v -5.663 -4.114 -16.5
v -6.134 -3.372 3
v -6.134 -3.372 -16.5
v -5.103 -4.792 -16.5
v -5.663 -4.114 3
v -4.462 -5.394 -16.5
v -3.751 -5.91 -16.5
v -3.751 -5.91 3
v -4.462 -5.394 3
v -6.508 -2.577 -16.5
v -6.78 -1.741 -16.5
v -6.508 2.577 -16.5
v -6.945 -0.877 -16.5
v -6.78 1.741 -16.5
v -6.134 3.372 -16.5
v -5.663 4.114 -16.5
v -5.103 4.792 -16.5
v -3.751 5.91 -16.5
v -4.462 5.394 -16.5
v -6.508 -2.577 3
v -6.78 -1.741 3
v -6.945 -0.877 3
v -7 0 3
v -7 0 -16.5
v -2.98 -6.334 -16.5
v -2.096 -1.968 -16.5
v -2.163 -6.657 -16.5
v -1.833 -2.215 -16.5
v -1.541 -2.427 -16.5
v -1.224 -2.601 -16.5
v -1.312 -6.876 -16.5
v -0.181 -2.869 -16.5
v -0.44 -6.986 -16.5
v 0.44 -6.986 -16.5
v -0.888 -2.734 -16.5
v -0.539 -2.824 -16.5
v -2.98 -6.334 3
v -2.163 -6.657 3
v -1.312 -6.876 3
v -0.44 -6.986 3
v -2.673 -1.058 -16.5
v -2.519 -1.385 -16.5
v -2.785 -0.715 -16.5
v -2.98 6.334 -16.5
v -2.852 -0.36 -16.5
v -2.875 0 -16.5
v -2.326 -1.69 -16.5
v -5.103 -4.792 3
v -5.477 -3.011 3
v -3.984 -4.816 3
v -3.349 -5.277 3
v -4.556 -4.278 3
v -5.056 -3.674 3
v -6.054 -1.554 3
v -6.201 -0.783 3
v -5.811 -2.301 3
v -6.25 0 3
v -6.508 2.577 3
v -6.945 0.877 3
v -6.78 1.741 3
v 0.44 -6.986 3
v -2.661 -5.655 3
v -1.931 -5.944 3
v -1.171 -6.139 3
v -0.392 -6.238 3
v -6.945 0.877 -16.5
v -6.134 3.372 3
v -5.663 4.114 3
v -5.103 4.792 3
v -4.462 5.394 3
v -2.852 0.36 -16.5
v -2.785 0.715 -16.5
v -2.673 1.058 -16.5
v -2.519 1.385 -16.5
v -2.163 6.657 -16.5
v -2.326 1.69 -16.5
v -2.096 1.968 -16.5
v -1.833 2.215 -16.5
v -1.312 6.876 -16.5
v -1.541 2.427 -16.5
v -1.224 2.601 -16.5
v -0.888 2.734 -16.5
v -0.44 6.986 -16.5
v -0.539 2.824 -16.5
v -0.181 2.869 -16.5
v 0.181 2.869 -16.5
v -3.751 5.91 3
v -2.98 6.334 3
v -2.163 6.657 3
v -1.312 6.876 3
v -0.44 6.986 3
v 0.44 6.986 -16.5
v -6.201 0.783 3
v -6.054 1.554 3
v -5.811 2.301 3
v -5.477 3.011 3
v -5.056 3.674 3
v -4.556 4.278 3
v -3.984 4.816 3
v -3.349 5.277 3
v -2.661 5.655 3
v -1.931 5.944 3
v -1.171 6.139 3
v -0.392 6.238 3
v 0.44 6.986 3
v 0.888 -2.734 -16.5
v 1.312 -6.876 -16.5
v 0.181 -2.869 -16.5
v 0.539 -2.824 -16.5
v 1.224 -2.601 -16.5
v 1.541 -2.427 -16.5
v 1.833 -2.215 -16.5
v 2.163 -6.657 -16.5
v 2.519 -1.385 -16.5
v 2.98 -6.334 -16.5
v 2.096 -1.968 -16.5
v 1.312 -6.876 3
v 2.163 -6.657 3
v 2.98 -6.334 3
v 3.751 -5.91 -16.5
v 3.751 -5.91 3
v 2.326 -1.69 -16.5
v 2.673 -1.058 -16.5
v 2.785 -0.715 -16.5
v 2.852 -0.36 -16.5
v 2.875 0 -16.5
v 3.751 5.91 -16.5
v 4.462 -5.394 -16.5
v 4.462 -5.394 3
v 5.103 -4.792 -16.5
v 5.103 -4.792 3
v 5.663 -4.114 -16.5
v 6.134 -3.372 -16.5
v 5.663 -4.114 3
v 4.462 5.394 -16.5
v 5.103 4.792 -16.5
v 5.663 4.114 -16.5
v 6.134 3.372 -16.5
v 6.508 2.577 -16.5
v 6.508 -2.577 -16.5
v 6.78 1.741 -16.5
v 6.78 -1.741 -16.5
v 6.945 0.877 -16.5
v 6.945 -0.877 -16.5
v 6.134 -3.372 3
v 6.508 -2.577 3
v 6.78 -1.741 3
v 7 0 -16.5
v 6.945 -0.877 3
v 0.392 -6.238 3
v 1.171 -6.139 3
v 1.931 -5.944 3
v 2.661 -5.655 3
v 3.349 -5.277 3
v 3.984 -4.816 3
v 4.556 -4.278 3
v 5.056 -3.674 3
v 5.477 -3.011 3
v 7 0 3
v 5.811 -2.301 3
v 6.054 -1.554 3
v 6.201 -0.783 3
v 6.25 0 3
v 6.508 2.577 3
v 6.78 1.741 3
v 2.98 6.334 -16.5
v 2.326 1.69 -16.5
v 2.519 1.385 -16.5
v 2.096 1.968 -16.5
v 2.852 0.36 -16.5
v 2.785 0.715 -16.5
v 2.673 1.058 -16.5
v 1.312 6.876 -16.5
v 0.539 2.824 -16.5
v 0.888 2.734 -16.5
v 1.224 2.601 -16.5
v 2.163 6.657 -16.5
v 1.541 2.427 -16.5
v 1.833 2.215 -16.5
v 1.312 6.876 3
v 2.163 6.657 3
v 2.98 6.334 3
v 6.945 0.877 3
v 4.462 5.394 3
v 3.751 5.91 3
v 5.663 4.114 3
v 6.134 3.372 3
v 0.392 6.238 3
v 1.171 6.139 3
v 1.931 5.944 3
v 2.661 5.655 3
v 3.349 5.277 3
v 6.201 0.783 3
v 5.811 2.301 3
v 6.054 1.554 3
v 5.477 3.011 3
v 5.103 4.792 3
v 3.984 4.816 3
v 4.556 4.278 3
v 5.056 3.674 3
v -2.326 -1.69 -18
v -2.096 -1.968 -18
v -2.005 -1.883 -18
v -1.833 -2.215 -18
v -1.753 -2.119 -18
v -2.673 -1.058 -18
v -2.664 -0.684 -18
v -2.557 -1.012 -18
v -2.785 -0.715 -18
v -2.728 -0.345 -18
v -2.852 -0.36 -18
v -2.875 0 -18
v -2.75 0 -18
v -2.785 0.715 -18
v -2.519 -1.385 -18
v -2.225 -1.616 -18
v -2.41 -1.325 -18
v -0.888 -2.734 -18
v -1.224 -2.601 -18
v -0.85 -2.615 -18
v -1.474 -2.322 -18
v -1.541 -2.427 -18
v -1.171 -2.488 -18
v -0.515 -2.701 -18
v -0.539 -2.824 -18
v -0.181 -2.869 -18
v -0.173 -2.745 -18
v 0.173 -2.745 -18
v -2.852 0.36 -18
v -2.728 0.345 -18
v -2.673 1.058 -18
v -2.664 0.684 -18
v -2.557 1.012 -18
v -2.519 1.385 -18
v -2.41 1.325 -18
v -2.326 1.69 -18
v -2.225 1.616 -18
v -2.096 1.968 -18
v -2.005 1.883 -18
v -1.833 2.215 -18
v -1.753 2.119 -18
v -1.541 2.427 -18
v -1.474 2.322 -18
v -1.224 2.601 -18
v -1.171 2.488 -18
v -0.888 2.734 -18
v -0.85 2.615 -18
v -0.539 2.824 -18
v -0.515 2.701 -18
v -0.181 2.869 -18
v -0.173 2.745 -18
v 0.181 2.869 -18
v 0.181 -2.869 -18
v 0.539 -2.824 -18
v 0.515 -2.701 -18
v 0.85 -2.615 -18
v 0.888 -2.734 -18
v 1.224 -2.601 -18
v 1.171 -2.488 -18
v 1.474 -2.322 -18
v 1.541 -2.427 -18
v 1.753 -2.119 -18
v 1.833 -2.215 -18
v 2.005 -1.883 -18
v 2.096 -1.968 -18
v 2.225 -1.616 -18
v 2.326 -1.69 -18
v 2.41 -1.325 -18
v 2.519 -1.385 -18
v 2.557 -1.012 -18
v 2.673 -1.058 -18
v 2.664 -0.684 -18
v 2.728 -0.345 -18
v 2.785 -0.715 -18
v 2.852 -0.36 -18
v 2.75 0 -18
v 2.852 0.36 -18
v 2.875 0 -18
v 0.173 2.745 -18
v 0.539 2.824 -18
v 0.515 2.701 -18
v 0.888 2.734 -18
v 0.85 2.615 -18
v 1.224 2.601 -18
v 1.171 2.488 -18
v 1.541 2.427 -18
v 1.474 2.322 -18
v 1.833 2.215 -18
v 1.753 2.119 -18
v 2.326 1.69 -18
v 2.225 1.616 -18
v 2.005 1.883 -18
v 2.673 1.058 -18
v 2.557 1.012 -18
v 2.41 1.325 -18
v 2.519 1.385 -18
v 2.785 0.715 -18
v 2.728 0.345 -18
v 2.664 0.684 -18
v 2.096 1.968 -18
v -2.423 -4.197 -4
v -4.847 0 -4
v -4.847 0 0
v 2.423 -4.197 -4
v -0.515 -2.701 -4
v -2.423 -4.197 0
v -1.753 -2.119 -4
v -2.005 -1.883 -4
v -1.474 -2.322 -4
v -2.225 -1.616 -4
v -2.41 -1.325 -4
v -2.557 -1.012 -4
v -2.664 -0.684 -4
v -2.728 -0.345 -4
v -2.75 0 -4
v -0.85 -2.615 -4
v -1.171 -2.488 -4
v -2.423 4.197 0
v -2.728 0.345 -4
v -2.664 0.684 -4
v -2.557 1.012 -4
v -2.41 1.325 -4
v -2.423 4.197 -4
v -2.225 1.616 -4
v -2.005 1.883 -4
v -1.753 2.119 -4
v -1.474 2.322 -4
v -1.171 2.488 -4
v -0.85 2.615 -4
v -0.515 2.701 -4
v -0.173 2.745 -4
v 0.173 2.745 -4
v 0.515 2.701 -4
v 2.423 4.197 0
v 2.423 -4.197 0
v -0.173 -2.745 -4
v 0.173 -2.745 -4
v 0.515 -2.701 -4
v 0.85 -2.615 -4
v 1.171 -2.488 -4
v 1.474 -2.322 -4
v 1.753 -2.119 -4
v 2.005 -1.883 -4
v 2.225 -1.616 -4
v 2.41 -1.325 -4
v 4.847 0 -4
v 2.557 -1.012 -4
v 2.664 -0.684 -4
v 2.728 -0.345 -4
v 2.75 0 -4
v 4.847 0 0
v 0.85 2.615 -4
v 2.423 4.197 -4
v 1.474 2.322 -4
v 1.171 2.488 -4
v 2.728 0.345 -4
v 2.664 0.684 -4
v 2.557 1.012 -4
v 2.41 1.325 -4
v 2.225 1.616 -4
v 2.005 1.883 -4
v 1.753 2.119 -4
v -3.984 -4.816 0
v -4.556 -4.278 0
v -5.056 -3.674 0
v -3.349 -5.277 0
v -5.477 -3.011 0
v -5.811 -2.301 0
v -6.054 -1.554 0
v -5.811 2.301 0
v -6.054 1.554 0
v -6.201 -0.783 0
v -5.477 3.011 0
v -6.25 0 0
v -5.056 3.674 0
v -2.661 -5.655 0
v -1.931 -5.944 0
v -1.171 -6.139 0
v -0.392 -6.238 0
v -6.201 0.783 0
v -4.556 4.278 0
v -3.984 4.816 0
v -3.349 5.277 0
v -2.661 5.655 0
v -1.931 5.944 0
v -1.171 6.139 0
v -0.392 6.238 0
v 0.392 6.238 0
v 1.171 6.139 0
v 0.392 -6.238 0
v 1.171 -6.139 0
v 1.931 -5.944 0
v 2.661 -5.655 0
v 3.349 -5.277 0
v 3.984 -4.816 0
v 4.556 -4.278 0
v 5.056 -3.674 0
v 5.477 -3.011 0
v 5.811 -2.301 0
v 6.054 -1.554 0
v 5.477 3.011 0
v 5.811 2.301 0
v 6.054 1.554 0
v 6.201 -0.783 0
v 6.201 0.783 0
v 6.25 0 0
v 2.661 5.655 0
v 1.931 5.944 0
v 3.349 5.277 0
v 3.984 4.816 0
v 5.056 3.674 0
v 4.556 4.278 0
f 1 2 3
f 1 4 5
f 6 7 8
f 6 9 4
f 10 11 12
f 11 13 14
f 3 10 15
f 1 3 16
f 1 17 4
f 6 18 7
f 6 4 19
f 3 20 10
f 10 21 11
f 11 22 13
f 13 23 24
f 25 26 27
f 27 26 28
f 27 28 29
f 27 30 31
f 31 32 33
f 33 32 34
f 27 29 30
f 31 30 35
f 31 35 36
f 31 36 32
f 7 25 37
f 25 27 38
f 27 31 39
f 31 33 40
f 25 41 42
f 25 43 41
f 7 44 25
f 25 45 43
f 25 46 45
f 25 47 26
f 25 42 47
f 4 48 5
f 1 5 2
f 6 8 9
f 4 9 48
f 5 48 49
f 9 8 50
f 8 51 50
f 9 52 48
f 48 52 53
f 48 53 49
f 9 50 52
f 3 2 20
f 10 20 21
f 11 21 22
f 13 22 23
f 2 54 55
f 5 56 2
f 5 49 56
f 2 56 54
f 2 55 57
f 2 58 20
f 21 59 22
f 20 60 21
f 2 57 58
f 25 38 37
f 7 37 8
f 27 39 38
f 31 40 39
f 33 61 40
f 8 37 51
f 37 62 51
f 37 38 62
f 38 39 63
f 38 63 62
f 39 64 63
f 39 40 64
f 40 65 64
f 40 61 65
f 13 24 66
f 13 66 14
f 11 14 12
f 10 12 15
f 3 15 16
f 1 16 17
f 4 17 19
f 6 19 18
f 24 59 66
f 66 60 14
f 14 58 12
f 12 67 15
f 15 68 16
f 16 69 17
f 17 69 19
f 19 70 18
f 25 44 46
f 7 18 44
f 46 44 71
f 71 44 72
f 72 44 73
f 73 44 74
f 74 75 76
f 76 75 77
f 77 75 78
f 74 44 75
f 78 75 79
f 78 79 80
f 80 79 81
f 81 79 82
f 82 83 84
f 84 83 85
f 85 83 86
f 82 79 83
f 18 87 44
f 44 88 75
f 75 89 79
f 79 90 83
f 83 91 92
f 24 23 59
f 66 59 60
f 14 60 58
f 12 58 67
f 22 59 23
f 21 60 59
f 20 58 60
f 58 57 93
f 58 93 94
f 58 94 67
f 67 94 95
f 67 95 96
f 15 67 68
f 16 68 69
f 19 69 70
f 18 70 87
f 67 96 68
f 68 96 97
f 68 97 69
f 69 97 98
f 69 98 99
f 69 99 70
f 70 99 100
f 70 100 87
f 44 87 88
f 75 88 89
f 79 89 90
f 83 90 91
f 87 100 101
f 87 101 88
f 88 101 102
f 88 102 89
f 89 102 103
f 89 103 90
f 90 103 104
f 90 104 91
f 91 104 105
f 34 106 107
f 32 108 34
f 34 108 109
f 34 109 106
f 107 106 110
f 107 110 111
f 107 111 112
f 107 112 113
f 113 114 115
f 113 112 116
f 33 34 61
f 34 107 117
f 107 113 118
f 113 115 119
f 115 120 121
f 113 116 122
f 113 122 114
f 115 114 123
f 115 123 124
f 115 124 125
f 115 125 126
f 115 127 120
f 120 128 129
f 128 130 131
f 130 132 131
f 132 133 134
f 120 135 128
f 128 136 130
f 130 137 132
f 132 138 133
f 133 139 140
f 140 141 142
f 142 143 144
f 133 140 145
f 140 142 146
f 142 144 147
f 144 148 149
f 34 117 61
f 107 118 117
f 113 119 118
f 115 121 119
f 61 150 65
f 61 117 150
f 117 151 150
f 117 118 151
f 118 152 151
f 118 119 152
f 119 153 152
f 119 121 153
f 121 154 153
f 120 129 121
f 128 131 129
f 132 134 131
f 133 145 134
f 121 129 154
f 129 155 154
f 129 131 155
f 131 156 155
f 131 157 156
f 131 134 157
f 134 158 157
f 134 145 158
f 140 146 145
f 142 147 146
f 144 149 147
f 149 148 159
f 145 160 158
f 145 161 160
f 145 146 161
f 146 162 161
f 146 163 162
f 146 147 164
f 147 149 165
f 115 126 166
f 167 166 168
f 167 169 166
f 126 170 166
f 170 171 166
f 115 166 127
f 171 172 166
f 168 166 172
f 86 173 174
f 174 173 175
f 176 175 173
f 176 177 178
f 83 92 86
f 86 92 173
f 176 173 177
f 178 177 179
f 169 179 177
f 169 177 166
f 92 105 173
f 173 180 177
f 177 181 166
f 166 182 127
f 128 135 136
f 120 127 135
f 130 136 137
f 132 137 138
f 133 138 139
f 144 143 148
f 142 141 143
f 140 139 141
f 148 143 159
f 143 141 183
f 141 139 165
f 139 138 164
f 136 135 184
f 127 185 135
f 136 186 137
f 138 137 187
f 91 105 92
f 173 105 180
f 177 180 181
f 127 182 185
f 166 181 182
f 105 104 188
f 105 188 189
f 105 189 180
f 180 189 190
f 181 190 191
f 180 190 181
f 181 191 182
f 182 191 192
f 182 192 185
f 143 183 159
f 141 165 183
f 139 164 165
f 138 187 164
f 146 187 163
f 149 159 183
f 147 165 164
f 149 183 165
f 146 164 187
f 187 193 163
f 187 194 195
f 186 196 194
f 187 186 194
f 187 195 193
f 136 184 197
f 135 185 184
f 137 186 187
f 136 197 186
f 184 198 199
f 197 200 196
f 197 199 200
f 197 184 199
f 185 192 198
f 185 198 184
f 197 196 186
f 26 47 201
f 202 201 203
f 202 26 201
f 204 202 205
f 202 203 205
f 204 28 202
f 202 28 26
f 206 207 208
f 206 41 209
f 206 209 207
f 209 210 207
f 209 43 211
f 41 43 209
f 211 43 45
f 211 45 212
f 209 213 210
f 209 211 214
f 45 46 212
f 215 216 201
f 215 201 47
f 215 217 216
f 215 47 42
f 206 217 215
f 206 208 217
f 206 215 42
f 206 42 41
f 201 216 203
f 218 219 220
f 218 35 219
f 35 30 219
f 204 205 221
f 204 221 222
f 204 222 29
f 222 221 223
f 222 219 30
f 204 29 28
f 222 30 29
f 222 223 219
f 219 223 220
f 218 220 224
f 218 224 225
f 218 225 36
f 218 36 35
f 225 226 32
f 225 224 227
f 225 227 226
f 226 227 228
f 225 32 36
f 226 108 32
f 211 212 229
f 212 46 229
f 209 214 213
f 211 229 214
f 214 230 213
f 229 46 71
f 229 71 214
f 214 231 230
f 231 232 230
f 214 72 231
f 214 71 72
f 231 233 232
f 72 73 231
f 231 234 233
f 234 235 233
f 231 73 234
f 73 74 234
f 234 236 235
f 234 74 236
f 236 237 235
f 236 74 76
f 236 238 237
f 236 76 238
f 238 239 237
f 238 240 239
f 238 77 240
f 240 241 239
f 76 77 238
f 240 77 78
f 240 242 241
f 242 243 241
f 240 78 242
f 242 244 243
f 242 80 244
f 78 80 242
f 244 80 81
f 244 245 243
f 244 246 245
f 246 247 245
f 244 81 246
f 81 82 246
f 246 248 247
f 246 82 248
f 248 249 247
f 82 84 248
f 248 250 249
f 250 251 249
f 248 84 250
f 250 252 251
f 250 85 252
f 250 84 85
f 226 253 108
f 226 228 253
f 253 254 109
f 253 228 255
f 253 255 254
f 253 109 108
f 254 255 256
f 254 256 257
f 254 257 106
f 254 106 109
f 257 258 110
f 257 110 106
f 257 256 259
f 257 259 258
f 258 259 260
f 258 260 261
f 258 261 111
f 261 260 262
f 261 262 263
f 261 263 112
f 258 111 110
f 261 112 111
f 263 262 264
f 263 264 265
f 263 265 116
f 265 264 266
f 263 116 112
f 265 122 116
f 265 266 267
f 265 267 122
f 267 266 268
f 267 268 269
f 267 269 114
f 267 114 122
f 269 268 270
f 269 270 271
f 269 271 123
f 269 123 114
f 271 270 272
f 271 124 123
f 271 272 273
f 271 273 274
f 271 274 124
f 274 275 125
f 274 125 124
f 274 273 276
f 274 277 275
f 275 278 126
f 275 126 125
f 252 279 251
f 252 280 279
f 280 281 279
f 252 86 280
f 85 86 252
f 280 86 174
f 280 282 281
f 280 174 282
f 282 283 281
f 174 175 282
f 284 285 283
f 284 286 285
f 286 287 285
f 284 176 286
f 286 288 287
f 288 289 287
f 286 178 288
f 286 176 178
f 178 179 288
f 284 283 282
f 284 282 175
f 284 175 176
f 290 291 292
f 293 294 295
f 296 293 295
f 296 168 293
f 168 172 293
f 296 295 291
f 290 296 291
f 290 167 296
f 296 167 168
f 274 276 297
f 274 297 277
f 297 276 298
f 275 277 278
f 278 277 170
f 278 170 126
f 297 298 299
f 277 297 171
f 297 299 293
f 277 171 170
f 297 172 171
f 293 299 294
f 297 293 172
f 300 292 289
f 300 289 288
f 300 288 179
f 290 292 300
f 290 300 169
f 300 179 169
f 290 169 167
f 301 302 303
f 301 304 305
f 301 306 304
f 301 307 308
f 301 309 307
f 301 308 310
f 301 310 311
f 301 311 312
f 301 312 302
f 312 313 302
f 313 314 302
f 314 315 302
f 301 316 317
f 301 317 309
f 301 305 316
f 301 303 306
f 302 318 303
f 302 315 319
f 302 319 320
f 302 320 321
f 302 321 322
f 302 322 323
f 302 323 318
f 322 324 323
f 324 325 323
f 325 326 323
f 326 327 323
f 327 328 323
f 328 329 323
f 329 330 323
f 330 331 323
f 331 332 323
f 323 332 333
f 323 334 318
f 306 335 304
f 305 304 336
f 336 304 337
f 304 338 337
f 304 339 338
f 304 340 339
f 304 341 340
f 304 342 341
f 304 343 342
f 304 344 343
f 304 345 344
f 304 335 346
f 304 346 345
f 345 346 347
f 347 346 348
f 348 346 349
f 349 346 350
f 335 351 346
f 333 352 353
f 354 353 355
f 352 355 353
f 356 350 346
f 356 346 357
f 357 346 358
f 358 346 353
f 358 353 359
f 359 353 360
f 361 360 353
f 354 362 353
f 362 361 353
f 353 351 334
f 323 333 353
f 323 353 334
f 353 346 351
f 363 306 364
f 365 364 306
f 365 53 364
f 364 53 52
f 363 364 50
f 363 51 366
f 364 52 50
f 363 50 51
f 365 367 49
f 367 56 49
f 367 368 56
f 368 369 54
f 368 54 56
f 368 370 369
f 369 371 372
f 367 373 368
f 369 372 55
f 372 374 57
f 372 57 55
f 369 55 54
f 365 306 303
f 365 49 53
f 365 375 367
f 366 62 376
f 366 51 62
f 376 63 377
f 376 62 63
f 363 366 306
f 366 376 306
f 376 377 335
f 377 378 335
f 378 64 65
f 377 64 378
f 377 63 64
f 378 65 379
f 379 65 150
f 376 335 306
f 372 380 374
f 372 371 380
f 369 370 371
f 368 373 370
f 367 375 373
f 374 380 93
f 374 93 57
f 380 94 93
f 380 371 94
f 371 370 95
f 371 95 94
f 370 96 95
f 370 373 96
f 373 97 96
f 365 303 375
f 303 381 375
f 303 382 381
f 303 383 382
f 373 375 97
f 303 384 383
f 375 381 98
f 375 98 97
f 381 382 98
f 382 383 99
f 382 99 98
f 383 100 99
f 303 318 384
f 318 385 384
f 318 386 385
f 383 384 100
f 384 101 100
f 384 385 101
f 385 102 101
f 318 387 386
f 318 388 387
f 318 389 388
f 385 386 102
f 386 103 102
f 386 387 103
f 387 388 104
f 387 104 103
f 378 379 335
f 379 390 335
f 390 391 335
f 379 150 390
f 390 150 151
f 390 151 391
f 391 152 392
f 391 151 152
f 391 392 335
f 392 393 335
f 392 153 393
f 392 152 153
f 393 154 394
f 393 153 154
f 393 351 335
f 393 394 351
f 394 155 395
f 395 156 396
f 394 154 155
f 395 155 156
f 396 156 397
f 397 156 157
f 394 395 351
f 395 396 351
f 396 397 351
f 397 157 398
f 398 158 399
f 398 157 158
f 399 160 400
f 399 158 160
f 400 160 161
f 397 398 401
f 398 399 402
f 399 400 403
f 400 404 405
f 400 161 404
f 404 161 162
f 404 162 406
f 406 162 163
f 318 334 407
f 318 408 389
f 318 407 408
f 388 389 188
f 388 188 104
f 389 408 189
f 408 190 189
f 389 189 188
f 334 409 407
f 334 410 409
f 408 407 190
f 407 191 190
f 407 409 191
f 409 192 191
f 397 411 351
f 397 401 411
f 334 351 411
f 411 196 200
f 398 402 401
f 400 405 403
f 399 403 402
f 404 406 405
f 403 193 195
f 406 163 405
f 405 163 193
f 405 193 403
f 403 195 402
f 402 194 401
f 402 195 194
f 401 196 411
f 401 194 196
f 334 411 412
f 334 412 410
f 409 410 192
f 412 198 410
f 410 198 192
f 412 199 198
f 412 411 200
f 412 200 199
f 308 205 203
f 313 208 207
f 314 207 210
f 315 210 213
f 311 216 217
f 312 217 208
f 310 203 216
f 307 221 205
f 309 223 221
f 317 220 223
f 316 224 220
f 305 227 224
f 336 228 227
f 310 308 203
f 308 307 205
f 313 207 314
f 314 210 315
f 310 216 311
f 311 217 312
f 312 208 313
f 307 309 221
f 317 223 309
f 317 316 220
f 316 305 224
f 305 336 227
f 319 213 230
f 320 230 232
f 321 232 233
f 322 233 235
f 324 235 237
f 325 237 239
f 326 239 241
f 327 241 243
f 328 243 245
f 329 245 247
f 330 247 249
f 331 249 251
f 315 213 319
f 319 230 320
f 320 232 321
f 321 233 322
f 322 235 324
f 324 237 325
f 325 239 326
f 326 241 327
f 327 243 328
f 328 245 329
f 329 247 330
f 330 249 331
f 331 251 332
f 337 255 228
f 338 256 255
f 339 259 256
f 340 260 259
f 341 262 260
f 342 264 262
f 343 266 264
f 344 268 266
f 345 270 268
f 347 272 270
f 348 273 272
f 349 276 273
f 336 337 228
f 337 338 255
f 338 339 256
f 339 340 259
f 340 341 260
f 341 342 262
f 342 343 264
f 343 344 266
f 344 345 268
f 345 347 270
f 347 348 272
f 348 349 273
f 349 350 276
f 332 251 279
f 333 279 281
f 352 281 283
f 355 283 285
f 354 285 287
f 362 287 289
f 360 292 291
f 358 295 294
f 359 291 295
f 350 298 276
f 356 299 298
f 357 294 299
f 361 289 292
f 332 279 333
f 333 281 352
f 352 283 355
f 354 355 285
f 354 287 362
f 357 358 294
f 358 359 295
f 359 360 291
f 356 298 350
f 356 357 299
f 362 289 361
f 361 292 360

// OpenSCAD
$fn = 50;

difference() {
	union() {
		translate(v = [0, 0, -16.5]) {
			cylinder(h = 19.5, r = 7.0);
		}
		#translate(v = [0, 0, -18.0]) {
			cylinder(h = 18, r = 2.875);
		}
	}
	union() {
		translate(v = [0, 0, 0]) {
			rotate(a = [0, 0, 0]) {
				difference() {
					union() {
						translate(v = [0, 0, -4]) {
							linear_extrude(height = 4) {
								polygon(points = [[4.8468, 0.0], [2.4234000000000004, 4.197451927062417], [-2.423399999999999, 4.197451927062417], [-4.8468, 5.935618106107392e-16], [-2.423400000000002, -4.197451927062416], [2.423399999999997, -4.197451927062419]]);
							}
						}
					}
					union();
				}
			}
		}
		#cylinder(h = 3, r = 6.25);
		#translate(v = [0, 0, -100.0]) {
			cylinder(h = 200, r = 2.75);
		}
	}
}
